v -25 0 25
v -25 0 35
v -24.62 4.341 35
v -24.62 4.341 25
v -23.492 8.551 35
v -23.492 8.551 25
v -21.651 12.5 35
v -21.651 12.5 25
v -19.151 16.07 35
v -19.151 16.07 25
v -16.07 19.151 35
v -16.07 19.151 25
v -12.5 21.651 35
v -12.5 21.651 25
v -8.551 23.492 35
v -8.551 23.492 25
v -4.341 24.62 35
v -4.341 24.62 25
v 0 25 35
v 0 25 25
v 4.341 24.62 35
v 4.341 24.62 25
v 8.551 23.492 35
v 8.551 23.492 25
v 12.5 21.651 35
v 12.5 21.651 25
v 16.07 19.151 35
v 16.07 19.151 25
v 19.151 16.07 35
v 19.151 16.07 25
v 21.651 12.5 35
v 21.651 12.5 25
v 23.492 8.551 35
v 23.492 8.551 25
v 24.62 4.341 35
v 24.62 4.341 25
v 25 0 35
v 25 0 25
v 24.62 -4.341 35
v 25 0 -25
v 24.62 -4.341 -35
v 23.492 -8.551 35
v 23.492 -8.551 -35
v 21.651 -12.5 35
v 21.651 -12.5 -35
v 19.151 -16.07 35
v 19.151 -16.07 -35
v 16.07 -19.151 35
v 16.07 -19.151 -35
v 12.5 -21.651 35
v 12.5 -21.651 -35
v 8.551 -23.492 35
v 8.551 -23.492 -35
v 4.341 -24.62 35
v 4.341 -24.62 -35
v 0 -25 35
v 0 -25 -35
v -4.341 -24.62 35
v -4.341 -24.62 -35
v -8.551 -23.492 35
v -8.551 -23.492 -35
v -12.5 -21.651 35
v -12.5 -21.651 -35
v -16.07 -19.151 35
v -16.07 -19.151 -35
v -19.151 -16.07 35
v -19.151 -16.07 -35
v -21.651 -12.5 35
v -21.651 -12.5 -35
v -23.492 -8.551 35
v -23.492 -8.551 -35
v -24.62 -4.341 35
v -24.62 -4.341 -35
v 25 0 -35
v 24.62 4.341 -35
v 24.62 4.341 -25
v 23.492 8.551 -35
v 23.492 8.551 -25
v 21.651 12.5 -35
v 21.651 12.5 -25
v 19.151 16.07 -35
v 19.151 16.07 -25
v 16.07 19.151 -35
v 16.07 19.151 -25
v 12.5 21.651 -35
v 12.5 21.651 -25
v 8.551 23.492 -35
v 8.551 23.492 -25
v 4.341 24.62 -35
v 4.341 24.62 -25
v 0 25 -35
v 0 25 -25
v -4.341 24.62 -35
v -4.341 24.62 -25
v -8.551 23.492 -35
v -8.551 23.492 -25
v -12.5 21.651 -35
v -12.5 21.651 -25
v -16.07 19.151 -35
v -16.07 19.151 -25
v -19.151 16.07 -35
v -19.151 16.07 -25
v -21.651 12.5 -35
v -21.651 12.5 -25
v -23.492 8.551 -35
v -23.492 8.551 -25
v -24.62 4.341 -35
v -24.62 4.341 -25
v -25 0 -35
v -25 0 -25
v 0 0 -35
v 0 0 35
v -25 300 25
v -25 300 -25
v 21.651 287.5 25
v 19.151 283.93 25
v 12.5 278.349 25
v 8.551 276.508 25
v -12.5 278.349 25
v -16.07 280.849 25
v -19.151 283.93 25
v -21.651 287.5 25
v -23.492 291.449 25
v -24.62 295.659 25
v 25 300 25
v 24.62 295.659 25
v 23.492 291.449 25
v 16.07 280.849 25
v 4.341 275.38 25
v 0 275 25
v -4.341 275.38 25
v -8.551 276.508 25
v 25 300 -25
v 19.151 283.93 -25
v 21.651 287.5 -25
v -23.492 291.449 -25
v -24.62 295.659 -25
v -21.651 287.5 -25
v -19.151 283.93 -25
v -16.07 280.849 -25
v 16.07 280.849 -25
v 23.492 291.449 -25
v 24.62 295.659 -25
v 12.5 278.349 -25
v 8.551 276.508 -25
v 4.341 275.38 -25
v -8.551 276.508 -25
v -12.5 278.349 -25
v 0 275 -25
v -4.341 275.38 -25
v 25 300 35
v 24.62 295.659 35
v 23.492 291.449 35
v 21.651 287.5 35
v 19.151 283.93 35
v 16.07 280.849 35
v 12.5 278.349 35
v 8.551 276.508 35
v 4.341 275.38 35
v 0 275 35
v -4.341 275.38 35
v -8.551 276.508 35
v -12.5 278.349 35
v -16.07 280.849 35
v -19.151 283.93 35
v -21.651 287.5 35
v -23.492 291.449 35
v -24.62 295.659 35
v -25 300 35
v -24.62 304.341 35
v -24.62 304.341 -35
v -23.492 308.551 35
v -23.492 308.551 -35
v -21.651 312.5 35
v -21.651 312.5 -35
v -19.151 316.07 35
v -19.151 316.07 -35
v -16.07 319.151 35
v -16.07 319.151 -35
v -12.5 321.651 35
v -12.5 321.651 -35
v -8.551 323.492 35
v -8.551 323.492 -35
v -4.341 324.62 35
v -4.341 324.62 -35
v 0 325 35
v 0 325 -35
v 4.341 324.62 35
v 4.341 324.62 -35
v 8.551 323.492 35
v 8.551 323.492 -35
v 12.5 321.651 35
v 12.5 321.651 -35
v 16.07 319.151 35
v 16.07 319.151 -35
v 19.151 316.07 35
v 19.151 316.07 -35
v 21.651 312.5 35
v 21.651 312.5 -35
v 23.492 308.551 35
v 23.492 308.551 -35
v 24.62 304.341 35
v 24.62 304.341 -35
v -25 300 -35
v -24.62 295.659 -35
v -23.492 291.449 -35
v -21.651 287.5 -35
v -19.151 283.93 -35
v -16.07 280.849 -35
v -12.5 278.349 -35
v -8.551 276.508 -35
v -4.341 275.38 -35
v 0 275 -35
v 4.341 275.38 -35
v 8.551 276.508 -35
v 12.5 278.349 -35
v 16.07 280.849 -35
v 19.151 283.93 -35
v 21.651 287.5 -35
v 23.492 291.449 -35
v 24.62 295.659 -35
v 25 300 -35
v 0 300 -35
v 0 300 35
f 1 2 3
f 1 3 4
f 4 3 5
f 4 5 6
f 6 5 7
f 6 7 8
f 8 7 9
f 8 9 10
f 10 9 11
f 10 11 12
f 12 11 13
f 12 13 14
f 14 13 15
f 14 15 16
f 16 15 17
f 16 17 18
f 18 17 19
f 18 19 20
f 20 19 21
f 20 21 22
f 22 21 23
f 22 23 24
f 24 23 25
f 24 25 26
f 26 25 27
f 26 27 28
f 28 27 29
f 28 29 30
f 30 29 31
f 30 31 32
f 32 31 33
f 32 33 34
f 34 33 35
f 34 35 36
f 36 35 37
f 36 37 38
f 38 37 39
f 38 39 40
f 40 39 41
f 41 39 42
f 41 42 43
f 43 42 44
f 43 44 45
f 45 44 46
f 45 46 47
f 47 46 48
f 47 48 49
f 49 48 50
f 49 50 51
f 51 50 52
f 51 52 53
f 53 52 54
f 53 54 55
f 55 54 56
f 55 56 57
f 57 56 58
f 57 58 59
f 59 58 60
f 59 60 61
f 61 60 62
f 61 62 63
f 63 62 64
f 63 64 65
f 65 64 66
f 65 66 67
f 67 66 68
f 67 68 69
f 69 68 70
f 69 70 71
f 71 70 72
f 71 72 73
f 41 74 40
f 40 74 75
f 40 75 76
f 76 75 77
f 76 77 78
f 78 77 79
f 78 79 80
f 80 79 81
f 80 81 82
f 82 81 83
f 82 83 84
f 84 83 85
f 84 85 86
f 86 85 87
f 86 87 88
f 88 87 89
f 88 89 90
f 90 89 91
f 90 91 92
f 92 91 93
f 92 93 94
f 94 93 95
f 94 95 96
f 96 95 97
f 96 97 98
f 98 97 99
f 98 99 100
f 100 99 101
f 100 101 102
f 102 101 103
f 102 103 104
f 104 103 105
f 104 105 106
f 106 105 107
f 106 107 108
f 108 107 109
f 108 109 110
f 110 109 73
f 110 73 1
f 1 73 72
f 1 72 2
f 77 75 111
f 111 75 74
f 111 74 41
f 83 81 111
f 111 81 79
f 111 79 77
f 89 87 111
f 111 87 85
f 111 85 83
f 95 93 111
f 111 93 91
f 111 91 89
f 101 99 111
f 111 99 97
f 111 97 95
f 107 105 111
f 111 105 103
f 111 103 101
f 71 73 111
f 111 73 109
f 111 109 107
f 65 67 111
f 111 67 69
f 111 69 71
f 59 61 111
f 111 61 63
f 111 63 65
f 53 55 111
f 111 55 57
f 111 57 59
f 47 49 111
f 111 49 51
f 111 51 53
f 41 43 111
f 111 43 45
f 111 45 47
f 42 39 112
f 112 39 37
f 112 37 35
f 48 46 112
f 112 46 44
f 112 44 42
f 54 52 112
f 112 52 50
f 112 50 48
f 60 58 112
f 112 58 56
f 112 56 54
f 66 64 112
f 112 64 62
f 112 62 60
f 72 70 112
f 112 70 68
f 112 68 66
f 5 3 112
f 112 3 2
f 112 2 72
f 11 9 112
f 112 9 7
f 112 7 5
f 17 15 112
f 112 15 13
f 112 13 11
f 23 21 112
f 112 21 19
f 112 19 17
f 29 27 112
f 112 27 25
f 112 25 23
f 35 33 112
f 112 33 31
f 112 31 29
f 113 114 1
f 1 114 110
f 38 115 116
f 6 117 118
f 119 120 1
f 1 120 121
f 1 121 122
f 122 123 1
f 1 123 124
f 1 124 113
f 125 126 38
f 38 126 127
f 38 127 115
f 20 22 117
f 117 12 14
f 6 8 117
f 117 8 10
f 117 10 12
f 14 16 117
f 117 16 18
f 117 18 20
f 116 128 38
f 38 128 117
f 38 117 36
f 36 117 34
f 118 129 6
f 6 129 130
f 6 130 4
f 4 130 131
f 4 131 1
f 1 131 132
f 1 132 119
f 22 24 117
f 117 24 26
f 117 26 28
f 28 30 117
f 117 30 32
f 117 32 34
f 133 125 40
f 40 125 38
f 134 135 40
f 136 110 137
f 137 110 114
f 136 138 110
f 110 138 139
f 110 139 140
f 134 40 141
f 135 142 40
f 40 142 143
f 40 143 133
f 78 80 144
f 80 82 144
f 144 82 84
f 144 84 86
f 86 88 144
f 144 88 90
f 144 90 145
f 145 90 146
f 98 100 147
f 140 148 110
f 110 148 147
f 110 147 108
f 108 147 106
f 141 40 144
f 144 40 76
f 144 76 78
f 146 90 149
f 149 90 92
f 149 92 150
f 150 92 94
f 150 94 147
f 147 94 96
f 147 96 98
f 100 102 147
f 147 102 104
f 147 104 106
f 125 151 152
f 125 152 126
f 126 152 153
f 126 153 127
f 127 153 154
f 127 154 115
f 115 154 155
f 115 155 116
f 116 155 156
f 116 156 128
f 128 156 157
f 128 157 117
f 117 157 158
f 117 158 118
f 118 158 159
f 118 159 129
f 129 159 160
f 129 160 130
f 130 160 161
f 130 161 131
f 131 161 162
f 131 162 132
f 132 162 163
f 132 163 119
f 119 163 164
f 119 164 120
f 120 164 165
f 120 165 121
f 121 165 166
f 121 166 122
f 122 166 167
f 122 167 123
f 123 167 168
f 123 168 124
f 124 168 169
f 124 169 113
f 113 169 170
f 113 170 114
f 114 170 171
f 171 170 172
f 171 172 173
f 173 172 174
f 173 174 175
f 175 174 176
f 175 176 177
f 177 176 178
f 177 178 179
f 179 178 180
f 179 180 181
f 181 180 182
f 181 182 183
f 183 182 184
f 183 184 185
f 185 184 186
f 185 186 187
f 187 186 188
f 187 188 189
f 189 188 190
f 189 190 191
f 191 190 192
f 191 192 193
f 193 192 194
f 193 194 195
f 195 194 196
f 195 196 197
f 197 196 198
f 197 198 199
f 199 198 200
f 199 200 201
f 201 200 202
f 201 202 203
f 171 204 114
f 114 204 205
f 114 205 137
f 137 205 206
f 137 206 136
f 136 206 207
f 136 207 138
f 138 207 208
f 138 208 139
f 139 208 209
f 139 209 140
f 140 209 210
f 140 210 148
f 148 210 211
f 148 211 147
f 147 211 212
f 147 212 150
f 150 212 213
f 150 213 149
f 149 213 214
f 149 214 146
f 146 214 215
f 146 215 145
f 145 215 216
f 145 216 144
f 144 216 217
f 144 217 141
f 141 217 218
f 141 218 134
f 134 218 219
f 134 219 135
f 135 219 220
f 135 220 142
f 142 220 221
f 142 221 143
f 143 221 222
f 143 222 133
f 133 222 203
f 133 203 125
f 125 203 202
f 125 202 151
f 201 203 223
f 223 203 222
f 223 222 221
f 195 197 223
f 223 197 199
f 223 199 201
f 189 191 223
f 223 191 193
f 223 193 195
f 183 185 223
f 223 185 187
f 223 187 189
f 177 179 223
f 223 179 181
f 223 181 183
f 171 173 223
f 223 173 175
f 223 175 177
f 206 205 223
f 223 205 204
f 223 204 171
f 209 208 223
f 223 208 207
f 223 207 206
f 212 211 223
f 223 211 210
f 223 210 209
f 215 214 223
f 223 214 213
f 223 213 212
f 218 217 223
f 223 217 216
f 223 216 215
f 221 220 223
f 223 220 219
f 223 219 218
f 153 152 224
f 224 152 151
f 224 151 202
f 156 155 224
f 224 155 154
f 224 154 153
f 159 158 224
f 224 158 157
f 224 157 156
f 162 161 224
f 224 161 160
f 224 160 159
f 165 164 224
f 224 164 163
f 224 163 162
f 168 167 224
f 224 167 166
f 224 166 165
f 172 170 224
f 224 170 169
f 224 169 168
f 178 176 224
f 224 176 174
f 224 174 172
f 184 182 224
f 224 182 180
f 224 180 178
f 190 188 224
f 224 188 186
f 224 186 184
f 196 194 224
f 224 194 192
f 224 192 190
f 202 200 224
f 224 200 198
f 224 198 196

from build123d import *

# Parameters (mm, degrees)
EXTRUDE_1_DEPTH      = 35
EXTRUDE_1_DEPTH_BACK = 35
SKETCH_1_R           = 25
SKETCH_2_W           = 50
SKETCH_2_H           = 50
EXTRUDE_2_DEPTH      = 300
EXTRUDE_3_DEPTH      = 35
EXTRUDE_3_DEPTH_BACK = 35
SKETCH_3_R           = 25


with BuildPart() as part:
    # 草图1 → 凸台-拉伸1 (new, two sides: drawn at the far end of the back side and taken through both)
    with BuildSketch(Plane.XY.offset(-EXTRUDE_1_DEPTH_BACK)):
        Circle(SKETCH_1_R)
    extrude(amount=EXTRUDE_1_DEPTH + EXTRUDE_1_DEPTH_BACK)

    # 草图2 → 凸台-拉伸2 (add)
    with BuildSketch(Plane(origin=(0, 0, 0), x_dir=(1, 0, 0), z_dir=(0, 1, 0))):
        Rectangle(SKETCH_2_W, SKETCH_2_H)
    extrude(amount=EXTRUDE_2_DEPTH)

    # 草图3 → 凸台-拉伸3 (add, two sides: drawn at the far end of the back side and taken through both)
    with BuildSketch(Plane.XY.offset(-EXTRUDE_3_DEPTH_BACK)):
        with Locations((0, 300)):
            Circle(SKETCH_3_R)
    extrude(amount=EXTRUDE_3_DEPTH + EXTRUDE_3_DEPTH_BACK)


solid = part.part
